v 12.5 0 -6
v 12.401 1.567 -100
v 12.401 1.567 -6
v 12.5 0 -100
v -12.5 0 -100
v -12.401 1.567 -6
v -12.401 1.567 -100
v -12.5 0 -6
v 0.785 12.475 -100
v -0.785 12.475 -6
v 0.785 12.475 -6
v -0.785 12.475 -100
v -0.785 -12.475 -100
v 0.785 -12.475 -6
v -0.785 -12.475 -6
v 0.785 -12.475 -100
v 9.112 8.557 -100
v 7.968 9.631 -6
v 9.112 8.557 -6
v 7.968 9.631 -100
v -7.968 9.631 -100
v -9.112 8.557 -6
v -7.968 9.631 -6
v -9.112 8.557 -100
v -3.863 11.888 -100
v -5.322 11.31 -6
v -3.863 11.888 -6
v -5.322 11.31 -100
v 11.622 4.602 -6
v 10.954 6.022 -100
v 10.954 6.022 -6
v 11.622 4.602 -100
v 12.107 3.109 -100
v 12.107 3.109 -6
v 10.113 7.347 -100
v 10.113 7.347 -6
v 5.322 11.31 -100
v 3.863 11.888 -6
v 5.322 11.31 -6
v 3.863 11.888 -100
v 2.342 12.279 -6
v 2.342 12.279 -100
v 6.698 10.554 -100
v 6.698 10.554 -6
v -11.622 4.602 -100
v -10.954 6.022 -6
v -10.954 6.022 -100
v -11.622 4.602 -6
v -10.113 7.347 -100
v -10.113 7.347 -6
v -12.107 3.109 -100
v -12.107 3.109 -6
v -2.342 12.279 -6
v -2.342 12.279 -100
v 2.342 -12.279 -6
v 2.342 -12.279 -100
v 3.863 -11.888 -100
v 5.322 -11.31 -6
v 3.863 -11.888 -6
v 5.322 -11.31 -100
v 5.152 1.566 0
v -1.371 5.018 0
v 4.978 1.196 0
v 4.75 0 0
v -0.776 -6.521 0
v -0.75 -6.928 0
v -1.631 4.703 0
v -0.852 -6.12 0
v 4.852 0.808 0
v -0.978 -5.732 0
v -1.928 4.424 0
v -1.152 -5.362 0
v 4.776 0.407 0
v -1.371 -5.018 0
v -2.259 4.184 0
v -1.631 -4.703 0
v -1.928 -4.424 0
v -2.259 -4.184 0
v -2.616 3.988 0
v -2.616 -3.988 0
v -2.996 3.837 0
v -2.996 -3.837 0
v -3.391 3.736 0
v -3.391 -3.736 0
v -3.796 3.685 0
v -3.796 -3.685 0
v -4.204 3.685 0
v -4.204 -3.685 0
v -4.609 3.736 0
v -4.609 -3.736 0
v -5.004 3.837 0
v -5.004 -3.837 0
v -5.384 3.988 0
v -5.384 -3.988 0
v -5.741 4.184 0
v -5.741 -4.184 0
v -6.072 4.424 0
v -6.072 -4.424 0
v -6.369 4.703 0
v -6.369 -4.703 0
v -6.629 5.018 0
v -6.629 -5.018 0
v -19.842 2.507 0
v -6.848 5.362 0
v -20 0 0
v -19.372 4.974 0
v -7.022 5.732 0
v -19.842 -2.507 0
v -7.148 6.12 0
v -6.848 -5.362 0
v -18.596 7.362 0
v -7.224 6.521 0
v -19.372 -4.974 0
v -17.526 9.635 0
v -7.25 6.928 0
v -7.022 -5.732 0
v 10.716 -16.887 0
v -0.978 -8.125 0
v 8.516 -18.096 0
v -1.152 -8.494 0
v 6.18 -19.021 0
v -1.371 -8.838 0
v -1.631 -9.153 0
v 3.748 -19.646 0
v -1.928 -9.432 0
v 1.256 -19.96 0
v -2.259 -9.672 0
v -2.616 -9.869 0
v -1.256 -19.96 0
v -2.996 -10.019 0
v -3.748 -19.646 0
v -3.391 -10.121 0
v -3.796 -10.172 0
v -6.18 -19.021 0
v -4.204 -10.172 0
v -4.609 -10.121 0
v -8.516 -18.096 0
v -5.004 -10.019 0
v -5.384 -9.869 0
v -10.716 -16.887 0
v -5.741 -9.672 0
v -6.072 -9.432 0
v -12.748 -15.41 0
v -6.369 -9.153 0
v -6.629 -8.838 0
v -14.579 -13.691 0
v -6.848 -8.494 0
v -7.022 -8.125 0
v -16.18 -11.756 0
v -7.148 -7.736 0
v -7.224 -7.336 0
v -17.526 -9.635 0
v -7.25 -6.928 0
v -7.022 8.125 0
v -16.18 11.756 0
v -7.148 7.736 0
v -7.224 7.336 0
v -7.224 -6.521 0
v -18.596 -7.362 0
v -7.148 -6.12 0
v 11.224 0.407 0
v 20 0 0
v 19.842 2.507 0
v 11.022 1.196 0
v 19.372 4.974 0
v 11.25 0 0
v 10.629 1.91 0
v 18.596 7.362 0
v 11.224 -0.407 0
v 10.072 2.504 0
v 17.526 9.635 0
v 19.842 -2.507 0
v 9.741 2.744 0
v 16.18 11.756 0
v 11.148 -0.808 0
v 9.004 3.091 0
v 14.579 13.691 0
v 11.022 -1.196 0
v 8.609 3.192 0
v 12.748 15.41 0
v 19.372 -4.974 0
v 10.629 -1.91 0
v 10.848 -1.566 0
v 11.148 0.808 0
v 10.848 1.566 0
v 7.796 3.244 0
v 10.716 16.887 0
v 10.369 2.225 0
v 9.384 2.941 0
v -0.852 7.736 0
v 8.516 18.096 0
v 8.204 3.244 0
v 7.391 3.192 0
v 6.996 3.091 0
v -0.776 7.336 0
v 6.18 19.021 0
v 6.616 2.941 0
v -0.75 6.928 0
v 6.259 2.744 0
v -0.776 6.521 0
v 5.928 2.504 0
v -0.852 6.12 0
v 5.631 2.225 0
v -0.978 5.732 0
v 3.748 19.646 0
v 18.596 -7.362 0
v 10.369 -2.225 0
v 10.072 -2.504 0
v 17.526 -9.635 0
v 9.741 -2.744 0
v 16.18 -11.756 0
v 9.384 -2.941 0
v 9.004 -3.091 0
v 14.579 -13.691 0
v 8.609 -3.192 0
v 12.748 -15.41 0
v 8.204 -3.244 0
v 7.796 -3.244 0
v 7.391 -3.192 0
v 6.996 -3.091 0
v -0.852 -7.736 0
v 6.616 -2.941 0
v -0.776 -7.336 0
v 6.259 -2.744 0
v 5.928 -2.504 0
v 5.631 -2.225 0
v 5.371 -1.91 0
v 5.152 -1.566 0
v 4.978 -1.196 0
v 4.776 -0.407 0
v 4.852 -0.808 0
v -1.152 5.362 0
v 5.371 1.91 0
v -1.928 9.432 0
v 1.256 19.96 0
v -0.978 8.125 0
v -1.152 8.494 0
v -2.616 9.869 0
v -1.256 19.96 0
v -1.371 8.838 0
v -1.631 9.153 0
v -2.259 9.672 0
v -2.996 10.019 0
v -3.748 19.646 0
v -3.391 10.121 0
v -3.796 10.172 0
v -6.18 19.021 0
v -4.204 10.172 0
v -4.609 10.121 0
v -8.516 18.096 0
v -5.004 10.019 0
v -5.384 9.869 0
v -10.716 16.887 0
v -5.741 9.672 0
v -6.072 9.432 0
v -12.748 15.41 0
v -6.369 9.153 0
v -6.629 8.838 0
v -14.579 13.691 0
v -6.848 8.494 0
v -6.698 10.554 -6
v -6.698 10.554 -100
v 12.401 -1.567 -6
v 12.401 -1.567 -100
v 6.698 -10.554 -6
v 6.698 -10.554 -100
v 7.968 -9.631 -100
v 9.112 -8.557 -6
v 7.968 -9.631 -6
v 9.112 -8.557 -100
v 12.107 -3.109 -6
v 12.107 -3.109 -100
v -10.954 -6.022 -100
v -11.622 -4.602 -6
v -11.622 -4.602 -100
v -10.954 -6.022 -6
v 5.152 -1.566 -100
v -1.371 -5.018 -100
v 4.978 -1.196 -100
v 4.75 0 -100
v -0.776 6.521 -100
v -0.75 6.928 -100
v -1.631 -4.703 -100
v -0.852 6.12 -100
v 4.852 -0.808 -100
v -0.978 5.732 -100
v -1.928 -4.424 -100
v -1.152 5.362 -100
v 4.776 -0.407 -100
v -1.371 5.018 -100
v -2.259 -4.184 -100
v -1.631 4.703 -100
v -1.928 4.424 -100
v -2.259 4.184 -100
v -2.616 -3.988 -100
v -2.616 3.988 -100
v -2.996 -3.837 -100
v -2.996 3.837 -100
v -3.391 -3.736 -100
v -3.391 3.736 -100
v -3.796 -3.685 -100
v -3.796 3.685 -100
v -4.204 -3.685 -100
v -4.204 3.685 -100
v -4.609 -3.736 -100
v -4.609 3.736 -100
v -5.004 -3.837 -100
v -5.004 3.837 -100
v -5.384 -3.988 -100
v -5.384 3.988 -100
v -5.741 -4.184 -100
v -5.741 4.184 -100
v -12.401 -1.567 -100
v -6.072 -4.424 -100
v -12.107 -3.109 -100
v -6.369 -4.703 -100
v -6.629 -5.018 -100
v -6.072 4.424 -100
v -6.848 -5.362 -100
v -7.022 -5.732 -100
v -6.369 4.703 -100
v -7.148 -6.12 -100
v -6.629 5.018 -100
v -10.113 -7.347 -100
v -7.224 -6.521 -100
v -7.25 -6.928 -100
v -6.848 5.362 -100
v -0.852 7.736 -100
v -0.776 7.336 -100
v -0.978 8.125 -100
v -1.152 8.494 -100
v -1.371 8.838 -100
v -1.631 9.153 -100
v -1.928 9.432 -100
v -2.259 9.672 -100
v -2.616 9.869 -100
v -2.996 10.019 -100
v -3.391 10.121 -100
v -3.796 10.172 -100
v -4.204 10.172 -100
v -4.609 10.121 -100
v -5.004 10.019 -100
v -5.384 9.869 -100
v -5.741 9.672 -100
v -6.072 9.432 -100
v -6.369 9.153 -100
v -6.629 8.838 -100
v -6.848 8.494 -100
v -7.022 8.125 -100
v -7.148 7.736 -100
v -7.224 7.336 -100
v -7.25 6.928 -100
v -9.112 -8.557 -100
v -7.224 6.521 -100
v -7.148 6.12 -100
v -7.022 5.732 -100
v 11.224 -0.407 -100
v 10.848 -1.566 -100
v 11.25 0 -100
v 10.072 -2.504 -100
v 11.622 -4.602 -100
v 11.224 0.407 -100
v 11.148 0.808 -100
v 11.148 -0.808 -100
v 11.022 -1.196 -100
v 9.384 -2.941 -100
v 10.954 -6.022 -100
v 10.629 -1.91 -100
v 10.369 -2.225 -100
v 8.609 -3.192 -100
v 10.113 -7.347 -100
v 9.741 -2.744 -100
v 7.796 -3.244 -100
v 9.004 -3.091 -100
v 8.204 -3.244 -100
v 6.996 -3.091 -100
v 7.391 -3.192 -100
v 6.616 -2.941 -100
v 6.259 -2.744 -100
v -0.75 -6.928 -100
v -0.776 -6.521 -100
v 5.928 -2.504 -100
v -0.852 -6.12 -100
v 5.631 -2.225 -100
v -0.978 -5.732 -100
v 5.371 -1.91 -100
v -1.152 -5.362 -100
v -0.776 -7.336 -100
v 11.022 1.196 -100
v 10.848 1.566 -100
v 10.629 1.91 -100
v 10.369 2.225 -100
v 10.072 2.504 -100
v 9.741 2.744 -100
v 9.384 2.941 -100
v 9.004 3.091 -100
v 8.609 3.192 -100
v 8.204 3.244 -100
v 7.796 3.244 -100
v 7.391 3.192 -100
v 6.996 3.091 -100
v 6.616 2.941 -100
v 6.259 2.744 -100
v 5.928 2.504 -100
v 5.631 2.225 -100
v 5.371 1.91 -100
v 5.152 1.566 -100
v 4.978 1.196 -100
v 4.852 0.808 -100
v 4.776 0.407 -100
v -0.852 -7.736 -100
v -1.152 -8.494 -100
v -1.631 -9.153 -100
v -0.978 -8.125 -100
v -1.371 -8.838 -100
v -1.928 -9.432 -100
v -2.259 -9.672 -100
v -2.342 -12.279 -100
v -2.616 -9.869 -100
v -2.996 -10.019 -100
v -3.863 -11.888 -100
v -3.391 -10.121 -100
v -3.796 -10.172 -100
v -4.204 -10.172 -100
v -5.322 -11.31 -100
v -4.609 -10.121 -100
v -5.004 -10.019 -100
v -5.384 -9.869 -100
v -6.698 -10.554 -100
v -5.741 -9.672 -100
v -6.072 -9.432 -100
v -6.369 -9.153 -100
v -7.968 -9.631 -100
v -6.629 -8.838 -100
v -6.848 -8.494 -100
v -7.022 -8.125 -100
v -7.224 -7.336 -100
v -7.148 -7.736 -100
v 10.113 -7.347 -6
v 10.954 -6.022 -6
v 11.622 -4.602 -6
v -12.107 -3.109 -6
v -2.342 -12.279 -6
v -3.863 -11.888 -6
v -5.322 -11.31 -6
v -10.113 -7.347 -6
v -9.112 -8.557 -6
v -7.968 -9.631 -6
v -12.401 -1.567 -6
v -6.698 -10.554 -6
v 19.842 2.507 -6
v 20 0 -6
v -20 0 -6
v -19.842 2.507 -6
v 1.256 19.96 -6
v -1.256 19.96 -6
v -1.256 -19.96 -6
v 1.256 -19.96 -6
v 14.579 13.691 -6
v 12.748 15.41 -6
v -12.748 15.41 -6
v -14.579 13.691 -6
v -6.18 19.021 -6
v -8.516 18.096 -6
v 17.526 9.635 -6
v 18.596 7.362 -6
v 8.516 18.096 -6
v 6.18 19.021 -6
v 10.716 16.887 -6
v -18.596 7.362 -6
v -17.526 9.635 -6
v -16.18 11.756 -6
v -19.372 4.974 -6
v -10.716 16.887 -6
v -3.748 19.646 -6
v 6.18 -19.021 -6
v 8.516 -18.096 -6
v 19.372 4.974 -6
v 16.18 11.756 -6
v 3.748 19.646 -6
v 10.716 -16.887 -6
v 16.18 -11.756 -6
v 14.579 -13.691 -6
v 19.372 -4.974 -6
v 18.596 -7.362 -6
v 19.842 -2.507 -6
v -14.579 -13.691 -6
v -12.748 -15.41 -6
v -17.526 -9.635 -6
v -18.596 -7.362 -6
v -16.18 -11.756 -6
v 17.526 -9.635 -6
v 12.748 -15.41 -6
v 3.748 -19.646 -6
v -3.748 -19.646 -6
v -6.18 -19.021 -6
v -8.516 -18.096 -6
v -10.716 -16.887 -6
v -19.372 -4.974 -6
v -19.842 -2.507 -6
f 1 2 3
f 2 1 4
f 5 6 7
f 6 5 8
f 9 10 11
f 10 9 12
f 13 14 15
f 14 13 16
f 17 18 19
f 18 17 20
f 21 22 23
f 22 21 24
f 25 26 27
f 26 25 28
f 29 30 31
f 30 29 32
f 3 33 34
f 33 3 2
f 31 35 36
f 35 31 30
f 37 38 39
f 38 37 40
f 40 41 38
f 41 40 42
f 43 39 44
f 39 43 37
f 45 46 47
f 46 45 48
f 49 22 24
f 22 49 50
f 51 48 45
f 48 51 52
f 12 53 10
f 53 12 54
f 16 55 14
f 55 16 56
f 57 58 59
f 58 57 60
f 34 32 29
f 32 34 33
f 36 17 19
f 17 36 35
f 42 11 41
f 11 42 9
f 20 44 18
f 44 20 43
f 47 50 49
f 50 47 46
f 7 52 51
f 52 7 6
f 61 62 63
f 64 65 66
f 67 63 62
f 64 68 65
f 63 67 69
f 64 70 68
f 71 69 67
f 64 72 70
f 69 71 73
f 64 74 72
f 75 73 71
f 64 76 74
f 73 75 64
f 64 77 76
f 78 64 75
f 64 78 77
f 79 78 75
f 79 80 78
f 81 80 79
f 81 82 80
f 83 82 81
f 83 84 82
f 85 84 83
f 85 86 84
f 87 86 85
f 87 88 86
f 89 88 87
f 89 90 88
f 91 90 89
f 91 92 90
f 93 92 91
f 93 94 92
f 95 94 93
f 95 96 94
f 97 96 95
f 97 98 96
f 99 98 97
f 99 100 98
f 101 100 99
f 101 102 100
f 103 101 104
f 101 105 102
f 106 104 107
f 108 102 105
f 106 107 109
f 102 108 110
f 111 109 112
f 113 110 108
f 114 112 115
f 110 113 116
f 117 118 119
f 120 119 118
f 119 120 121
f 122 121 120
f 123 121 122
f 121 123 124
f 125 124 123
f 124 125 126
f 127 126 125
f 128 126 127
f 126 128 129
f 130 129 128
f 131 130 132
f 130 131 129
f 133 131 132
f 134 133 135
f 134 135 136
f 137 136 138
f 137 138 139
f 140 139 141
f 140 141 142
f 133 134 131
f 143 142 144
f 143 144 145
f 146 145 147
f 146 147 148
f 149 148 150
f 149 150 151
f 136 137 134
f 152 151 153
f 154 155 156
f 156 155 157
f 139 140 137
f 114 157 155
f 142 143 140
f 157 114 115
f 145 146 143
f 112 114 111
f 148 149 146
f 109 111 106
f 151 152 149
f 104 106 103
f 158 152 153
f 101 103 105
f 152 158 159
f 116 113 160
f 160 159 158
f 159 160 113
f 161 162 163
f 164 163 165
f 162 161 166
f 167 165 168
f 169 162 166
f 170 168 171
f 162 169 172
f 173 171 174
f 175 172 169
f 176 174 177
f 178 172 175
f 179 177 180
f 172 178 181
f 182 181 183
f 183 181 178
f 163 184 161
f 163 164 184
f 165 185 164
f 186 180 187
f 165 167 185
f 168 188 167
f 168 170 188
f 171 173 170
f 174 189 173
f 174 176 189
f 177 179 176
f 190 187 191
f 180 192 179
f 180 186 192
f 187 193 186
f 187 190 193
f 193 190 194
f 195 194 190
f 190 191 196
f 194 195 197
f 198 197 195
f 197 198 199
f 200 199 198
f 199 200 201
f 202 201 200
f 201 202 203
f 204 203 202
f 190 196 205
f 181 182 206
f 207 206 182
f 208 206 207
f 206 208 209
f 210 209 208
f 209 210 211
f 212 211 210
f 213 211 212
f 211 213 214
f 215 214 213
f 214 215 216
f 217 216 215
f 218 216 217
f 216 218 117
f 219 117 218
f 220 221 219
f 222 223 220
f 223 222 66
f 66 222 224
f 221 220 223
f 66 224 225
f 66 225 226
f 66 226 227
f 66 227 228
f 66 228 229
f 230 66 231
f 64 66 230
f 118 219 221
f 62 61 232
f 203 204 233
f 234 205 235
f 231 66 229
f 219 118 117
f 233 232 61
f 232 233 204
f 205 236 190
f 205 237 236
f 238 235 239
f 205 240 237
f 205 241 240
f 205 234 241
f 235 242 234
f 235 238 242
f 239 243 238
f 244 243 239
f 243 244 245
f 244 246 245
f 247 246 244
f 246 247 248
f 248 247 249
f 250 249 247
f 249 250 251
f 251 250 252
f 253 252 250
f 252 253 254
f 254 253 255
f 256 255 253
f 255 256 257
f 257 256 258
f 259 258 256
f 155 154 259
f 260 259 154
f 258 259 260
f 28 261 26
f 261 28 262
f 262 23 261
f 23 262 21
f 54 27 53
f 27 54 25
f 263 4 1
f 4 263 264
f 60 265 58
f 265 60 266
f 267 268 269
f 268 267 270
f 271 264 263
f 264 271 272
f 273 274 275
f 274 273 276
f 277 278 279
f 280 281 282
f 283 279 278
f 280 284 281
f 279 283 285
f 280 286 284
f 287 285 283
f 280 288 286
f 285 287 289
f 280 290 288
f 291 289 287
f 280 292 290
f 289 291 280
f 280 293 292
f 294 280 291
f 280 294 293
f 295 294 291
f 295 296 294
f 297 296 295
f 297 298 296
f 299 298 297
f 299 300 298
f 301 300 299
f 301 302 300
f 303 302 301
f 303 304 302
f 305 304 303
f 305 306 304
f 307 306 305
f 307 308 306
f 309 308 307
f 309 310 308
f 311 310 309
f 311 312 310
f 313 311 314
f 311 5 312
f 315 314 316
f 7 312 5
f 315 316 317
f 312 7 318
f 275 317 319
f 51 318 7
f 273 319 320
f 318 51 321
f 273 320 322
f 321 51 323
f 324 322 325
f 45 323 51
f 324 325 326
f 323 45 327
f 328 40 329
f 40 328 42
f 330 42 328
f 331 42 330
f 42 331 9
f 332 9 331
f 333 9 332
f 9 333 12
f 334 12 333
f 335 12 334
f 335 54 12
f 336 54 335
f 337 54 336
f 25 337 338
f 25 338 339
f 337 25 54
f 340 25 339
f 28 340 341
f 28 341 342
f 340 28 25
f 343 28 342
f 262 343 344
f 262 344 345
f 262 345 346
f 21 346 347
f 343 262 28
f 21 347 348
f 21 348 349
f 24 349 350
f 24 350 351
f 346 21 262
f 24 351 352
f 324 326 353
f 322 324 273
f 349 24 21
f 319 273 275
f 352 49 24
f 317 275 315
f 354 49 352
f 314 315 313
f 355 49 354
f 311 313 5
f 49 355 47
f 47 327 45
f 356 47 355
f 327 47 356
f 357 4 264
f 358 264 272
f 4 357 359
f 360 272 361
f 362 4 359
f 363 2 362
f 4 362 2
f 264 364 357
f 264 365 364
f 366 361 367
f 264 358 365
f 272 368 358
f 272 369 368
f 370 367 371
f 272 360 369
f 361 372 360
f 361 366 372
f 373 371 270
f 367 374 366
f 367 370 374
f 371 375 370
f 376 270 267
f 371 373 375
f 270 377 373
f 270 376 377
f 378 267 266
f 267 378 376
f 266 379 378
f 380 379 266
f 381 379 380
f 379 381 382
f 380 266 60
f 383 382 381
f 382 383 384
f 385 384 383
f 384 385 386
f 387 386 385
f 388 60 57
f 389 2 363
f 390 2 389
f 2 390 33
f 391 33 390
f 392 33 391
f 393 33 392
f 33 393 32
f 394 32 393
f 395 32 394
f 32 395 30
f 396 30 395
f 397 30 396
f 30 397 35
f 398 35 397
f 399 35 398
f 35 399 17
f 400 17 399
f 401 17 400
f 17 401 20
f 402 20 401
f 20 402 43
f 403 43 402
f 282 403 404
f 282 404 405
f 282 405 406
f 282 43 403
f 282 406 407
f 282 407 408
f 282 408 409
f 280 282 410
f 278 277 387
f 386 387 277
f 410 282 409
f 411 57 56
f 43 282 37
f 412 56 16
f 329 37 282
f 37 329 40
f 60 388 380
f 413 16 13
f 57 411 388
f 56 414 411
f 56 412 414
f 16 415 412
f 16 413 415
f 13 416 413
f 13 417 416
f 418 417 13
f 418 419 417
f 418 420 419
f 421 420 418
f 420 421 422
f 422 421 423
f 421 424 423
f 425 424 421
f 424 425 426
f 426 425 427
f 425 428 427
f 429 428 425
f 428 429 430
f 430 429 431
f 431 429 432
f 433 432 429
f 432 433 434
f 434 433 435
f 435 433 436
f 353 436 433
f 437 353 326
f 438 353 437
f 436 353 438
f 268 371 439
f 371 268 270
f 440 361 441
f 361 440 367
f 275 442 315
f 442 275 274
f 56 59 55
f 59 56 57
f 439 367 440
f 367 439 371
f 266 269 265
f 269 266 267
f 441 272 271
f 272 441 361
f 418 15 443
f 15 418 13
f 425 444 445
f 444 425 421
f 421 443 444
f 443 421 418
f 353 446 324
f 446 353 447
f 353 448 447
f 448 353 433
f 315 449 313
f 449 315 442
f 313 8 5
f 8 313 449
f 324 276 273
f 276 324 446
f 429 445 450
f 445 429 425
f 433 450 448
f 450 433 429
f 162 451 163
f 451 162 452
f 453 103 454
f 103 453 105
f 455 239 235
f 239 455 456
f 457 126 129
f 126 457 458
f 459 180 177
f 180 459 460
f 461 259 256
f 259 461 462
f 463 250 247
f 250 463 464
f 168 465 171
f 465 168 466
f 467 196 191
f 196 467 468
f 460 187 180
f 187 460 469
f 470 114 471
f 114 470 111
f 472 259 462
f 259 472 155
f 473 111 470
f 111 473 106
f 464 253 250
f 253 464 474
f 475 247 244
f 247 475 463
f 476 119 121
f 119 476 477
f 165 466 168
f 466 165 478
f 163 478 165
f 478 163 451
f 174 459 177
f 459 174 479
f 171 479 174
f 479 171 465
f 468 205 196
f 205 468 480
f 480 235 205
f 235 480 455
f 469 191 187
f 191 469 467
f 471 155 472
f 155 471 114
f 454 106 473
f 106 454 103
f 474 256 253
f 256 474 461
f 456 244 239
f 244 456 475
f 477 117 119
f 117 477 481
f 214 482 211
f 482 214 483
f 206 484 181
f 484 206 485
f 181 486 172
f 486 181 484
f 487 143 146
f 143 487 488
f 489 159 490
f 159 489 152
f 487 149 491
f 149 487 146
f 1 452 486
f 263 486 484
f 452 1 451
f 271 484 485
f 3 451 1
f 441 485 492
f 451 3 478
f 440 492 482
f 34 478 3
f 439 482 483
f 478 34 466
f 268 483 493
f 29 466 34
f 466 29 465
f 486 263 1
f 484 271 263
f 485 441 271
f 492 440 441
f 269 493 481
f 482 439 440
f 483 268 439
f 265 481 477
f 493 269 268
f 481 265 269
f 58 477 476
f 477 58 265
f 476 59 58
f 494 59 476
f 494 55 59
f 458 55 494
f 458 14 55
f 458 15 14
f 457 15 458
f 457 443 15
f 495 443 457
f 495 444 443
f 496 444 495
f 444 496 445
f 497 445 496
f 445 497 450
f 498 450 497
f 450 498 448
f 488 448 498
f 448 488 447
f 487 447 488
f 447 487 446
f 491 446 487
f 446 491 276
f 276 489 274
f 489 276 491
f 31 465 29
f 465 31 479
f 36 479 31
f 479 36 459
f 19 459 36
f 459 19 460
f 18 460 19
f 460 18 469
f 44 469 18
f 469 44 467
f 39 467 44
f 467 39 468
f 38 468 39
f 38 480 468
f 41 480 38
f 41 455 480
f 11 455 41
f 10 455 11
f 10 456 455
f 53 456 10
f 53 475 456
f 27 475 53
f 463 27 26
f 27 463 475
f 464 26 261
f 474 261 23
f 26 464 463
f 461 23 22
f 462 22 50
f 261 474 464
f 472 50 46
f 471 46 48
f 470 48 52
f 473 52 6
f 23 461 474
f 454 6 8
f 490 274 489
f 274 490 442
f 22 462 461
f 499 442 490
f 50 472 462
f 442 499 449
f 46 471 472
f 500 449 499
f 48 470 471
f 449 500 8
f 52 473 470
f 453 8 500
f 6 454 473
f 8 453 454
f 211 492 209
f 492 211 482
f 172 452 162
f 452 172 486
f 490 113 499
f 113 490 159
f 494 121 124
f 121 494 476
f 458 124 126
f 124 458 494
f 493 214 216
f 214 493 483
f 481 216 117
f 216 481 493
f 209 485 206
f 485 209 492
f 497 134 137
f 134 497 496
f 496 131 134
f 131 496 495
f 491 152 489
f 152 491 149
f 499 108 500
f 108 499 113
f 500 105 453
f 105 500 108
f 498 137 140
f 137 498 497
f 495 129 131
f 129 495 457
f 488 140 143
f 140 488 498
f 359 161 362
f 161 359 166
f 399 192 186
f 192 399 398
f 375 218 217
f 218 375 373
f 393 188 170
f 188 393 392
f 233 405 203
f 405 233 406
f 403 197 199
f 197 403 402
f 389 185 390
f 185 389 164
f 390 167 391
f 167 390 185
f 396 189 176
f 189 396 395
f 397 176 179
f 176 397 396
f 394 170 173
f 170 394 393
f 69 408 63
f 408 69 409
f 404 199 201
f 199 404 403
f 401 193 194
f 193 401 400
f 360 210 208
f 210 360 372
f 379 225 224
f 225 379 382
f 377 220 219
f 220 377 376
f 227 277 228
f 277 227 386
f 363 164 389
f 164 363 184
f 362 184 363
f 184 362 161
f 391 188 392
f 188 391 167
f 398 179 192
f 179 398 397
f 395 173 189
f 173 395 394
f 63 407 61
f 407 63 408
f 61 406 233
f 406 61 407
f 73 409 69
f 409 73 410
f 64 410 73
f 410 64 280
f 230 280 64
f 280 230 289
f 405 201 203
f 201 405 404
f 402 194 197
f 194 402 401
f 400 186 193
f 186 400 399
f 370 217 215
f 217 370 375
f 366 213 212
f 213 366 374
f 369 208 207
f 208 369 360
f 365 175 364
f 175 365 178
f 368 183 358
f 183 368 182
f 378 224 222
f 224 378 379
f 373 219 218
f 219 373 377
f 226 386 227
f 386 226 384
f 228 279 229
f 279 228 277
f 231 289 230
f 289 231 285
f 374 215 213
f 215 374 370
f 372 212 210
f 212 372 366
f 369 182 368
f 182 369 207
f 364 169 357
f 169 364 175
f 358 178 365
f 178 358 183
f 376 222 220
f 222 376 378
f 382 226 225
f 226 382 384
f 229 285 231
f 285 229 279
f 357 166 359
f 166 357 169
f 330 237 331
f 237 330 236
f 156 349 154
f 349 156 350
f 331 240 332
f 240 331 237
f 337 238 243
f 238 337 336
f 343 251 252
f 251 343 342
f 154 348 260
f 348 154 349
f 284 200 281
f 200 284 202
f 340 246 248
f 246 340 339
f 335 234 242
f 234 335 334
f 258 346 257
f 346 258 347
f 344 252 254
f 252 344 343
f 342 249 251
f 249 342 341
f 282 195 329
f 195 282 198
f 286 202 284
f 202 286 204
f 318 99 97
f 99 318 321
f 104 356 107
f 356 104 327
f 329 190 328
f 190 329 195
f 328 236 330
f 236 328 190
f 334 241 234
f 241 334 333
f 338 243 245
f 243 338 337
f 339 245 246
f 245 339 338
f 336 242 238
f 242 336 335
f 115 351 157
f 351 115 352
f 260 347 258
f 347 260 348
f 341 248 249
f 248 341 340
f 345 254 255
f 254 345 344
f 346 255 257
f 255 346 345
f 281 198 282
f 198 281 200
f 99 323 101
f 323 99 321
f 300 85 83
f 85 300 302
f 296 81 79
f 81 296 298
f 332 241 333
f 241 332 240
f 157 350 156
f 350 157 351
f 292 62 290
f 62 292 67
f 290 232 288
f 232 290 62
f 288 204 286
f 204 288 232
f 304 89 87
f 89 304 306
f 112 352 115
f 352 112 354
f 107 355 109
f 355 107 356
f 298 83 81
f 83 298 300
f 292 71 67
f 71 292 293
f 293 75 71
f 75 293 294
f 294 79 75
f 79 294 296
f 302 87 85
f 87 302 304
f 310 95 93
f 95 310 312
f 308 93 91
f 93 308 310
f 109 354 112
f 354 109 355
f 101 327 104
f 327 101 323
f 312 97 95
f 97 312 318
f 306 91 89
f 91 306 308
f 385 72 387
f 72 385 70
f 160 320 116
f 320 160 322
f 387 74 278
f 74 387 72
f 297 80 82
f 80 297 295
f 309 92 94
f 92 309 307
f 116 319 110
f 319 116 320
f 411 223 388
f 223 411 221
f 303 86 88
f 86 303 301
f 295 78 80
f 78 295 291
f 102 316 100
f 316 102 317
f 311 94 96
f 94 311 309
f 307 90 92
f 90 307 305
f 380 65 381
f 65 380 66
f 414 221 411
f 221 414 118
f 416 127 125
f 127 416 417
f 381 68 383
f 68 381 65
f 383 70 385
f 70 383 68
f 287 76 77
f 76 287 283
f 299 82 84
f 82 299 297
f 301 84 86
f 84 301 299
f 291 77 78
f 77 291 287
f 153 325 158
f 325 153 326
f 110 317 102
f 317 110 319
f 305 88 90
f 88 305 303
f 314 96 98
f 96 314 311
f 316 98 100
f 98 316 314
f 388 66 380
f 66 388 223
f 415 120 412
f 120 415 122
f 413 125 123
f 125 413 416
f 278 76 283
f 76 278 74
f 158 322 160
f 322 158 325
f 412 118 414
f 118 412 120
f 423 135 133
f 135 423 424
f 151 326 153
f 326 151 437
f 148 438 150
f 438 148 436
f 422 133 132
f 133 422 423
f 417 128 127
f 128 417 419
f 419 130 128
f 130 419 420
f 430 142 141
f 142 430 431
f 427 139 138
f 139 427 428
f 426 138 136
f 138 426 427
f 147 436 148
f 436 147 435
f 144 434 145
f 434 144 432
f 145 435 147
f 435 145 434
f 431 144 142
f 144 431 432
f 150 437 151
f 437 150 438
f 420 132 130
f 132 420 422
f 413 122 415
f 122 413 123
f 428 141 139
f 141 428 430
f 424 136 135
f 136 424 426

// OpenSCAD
$fn = 50;


difference() {
	union() {
		translate(v = [0, 0, -100.0000000000]) {
			cylinder(h = 100, r = 12.5000000000);
		}
		translate(v = [0, 0, -6.0000000000]) {
			cylinder(h = 6, r = 20.0000000000);
		}
	}
	union() {
		#translate(v = [8.0000000000, 0.0000000000, -100]) {
			cylinder(h = 100, r = 3.2500000000);
		}
		#translate(v = [-4.0000000000, 6.9282032303, -100]) {
			cylinder(h = 100, r = 3.2500000000);
		}
		#translate(v = [-4.0000000000, -6.9282032303, -100]) {
			cylinder(h = 100, r = 3.2500000000);
		}
	}
}
